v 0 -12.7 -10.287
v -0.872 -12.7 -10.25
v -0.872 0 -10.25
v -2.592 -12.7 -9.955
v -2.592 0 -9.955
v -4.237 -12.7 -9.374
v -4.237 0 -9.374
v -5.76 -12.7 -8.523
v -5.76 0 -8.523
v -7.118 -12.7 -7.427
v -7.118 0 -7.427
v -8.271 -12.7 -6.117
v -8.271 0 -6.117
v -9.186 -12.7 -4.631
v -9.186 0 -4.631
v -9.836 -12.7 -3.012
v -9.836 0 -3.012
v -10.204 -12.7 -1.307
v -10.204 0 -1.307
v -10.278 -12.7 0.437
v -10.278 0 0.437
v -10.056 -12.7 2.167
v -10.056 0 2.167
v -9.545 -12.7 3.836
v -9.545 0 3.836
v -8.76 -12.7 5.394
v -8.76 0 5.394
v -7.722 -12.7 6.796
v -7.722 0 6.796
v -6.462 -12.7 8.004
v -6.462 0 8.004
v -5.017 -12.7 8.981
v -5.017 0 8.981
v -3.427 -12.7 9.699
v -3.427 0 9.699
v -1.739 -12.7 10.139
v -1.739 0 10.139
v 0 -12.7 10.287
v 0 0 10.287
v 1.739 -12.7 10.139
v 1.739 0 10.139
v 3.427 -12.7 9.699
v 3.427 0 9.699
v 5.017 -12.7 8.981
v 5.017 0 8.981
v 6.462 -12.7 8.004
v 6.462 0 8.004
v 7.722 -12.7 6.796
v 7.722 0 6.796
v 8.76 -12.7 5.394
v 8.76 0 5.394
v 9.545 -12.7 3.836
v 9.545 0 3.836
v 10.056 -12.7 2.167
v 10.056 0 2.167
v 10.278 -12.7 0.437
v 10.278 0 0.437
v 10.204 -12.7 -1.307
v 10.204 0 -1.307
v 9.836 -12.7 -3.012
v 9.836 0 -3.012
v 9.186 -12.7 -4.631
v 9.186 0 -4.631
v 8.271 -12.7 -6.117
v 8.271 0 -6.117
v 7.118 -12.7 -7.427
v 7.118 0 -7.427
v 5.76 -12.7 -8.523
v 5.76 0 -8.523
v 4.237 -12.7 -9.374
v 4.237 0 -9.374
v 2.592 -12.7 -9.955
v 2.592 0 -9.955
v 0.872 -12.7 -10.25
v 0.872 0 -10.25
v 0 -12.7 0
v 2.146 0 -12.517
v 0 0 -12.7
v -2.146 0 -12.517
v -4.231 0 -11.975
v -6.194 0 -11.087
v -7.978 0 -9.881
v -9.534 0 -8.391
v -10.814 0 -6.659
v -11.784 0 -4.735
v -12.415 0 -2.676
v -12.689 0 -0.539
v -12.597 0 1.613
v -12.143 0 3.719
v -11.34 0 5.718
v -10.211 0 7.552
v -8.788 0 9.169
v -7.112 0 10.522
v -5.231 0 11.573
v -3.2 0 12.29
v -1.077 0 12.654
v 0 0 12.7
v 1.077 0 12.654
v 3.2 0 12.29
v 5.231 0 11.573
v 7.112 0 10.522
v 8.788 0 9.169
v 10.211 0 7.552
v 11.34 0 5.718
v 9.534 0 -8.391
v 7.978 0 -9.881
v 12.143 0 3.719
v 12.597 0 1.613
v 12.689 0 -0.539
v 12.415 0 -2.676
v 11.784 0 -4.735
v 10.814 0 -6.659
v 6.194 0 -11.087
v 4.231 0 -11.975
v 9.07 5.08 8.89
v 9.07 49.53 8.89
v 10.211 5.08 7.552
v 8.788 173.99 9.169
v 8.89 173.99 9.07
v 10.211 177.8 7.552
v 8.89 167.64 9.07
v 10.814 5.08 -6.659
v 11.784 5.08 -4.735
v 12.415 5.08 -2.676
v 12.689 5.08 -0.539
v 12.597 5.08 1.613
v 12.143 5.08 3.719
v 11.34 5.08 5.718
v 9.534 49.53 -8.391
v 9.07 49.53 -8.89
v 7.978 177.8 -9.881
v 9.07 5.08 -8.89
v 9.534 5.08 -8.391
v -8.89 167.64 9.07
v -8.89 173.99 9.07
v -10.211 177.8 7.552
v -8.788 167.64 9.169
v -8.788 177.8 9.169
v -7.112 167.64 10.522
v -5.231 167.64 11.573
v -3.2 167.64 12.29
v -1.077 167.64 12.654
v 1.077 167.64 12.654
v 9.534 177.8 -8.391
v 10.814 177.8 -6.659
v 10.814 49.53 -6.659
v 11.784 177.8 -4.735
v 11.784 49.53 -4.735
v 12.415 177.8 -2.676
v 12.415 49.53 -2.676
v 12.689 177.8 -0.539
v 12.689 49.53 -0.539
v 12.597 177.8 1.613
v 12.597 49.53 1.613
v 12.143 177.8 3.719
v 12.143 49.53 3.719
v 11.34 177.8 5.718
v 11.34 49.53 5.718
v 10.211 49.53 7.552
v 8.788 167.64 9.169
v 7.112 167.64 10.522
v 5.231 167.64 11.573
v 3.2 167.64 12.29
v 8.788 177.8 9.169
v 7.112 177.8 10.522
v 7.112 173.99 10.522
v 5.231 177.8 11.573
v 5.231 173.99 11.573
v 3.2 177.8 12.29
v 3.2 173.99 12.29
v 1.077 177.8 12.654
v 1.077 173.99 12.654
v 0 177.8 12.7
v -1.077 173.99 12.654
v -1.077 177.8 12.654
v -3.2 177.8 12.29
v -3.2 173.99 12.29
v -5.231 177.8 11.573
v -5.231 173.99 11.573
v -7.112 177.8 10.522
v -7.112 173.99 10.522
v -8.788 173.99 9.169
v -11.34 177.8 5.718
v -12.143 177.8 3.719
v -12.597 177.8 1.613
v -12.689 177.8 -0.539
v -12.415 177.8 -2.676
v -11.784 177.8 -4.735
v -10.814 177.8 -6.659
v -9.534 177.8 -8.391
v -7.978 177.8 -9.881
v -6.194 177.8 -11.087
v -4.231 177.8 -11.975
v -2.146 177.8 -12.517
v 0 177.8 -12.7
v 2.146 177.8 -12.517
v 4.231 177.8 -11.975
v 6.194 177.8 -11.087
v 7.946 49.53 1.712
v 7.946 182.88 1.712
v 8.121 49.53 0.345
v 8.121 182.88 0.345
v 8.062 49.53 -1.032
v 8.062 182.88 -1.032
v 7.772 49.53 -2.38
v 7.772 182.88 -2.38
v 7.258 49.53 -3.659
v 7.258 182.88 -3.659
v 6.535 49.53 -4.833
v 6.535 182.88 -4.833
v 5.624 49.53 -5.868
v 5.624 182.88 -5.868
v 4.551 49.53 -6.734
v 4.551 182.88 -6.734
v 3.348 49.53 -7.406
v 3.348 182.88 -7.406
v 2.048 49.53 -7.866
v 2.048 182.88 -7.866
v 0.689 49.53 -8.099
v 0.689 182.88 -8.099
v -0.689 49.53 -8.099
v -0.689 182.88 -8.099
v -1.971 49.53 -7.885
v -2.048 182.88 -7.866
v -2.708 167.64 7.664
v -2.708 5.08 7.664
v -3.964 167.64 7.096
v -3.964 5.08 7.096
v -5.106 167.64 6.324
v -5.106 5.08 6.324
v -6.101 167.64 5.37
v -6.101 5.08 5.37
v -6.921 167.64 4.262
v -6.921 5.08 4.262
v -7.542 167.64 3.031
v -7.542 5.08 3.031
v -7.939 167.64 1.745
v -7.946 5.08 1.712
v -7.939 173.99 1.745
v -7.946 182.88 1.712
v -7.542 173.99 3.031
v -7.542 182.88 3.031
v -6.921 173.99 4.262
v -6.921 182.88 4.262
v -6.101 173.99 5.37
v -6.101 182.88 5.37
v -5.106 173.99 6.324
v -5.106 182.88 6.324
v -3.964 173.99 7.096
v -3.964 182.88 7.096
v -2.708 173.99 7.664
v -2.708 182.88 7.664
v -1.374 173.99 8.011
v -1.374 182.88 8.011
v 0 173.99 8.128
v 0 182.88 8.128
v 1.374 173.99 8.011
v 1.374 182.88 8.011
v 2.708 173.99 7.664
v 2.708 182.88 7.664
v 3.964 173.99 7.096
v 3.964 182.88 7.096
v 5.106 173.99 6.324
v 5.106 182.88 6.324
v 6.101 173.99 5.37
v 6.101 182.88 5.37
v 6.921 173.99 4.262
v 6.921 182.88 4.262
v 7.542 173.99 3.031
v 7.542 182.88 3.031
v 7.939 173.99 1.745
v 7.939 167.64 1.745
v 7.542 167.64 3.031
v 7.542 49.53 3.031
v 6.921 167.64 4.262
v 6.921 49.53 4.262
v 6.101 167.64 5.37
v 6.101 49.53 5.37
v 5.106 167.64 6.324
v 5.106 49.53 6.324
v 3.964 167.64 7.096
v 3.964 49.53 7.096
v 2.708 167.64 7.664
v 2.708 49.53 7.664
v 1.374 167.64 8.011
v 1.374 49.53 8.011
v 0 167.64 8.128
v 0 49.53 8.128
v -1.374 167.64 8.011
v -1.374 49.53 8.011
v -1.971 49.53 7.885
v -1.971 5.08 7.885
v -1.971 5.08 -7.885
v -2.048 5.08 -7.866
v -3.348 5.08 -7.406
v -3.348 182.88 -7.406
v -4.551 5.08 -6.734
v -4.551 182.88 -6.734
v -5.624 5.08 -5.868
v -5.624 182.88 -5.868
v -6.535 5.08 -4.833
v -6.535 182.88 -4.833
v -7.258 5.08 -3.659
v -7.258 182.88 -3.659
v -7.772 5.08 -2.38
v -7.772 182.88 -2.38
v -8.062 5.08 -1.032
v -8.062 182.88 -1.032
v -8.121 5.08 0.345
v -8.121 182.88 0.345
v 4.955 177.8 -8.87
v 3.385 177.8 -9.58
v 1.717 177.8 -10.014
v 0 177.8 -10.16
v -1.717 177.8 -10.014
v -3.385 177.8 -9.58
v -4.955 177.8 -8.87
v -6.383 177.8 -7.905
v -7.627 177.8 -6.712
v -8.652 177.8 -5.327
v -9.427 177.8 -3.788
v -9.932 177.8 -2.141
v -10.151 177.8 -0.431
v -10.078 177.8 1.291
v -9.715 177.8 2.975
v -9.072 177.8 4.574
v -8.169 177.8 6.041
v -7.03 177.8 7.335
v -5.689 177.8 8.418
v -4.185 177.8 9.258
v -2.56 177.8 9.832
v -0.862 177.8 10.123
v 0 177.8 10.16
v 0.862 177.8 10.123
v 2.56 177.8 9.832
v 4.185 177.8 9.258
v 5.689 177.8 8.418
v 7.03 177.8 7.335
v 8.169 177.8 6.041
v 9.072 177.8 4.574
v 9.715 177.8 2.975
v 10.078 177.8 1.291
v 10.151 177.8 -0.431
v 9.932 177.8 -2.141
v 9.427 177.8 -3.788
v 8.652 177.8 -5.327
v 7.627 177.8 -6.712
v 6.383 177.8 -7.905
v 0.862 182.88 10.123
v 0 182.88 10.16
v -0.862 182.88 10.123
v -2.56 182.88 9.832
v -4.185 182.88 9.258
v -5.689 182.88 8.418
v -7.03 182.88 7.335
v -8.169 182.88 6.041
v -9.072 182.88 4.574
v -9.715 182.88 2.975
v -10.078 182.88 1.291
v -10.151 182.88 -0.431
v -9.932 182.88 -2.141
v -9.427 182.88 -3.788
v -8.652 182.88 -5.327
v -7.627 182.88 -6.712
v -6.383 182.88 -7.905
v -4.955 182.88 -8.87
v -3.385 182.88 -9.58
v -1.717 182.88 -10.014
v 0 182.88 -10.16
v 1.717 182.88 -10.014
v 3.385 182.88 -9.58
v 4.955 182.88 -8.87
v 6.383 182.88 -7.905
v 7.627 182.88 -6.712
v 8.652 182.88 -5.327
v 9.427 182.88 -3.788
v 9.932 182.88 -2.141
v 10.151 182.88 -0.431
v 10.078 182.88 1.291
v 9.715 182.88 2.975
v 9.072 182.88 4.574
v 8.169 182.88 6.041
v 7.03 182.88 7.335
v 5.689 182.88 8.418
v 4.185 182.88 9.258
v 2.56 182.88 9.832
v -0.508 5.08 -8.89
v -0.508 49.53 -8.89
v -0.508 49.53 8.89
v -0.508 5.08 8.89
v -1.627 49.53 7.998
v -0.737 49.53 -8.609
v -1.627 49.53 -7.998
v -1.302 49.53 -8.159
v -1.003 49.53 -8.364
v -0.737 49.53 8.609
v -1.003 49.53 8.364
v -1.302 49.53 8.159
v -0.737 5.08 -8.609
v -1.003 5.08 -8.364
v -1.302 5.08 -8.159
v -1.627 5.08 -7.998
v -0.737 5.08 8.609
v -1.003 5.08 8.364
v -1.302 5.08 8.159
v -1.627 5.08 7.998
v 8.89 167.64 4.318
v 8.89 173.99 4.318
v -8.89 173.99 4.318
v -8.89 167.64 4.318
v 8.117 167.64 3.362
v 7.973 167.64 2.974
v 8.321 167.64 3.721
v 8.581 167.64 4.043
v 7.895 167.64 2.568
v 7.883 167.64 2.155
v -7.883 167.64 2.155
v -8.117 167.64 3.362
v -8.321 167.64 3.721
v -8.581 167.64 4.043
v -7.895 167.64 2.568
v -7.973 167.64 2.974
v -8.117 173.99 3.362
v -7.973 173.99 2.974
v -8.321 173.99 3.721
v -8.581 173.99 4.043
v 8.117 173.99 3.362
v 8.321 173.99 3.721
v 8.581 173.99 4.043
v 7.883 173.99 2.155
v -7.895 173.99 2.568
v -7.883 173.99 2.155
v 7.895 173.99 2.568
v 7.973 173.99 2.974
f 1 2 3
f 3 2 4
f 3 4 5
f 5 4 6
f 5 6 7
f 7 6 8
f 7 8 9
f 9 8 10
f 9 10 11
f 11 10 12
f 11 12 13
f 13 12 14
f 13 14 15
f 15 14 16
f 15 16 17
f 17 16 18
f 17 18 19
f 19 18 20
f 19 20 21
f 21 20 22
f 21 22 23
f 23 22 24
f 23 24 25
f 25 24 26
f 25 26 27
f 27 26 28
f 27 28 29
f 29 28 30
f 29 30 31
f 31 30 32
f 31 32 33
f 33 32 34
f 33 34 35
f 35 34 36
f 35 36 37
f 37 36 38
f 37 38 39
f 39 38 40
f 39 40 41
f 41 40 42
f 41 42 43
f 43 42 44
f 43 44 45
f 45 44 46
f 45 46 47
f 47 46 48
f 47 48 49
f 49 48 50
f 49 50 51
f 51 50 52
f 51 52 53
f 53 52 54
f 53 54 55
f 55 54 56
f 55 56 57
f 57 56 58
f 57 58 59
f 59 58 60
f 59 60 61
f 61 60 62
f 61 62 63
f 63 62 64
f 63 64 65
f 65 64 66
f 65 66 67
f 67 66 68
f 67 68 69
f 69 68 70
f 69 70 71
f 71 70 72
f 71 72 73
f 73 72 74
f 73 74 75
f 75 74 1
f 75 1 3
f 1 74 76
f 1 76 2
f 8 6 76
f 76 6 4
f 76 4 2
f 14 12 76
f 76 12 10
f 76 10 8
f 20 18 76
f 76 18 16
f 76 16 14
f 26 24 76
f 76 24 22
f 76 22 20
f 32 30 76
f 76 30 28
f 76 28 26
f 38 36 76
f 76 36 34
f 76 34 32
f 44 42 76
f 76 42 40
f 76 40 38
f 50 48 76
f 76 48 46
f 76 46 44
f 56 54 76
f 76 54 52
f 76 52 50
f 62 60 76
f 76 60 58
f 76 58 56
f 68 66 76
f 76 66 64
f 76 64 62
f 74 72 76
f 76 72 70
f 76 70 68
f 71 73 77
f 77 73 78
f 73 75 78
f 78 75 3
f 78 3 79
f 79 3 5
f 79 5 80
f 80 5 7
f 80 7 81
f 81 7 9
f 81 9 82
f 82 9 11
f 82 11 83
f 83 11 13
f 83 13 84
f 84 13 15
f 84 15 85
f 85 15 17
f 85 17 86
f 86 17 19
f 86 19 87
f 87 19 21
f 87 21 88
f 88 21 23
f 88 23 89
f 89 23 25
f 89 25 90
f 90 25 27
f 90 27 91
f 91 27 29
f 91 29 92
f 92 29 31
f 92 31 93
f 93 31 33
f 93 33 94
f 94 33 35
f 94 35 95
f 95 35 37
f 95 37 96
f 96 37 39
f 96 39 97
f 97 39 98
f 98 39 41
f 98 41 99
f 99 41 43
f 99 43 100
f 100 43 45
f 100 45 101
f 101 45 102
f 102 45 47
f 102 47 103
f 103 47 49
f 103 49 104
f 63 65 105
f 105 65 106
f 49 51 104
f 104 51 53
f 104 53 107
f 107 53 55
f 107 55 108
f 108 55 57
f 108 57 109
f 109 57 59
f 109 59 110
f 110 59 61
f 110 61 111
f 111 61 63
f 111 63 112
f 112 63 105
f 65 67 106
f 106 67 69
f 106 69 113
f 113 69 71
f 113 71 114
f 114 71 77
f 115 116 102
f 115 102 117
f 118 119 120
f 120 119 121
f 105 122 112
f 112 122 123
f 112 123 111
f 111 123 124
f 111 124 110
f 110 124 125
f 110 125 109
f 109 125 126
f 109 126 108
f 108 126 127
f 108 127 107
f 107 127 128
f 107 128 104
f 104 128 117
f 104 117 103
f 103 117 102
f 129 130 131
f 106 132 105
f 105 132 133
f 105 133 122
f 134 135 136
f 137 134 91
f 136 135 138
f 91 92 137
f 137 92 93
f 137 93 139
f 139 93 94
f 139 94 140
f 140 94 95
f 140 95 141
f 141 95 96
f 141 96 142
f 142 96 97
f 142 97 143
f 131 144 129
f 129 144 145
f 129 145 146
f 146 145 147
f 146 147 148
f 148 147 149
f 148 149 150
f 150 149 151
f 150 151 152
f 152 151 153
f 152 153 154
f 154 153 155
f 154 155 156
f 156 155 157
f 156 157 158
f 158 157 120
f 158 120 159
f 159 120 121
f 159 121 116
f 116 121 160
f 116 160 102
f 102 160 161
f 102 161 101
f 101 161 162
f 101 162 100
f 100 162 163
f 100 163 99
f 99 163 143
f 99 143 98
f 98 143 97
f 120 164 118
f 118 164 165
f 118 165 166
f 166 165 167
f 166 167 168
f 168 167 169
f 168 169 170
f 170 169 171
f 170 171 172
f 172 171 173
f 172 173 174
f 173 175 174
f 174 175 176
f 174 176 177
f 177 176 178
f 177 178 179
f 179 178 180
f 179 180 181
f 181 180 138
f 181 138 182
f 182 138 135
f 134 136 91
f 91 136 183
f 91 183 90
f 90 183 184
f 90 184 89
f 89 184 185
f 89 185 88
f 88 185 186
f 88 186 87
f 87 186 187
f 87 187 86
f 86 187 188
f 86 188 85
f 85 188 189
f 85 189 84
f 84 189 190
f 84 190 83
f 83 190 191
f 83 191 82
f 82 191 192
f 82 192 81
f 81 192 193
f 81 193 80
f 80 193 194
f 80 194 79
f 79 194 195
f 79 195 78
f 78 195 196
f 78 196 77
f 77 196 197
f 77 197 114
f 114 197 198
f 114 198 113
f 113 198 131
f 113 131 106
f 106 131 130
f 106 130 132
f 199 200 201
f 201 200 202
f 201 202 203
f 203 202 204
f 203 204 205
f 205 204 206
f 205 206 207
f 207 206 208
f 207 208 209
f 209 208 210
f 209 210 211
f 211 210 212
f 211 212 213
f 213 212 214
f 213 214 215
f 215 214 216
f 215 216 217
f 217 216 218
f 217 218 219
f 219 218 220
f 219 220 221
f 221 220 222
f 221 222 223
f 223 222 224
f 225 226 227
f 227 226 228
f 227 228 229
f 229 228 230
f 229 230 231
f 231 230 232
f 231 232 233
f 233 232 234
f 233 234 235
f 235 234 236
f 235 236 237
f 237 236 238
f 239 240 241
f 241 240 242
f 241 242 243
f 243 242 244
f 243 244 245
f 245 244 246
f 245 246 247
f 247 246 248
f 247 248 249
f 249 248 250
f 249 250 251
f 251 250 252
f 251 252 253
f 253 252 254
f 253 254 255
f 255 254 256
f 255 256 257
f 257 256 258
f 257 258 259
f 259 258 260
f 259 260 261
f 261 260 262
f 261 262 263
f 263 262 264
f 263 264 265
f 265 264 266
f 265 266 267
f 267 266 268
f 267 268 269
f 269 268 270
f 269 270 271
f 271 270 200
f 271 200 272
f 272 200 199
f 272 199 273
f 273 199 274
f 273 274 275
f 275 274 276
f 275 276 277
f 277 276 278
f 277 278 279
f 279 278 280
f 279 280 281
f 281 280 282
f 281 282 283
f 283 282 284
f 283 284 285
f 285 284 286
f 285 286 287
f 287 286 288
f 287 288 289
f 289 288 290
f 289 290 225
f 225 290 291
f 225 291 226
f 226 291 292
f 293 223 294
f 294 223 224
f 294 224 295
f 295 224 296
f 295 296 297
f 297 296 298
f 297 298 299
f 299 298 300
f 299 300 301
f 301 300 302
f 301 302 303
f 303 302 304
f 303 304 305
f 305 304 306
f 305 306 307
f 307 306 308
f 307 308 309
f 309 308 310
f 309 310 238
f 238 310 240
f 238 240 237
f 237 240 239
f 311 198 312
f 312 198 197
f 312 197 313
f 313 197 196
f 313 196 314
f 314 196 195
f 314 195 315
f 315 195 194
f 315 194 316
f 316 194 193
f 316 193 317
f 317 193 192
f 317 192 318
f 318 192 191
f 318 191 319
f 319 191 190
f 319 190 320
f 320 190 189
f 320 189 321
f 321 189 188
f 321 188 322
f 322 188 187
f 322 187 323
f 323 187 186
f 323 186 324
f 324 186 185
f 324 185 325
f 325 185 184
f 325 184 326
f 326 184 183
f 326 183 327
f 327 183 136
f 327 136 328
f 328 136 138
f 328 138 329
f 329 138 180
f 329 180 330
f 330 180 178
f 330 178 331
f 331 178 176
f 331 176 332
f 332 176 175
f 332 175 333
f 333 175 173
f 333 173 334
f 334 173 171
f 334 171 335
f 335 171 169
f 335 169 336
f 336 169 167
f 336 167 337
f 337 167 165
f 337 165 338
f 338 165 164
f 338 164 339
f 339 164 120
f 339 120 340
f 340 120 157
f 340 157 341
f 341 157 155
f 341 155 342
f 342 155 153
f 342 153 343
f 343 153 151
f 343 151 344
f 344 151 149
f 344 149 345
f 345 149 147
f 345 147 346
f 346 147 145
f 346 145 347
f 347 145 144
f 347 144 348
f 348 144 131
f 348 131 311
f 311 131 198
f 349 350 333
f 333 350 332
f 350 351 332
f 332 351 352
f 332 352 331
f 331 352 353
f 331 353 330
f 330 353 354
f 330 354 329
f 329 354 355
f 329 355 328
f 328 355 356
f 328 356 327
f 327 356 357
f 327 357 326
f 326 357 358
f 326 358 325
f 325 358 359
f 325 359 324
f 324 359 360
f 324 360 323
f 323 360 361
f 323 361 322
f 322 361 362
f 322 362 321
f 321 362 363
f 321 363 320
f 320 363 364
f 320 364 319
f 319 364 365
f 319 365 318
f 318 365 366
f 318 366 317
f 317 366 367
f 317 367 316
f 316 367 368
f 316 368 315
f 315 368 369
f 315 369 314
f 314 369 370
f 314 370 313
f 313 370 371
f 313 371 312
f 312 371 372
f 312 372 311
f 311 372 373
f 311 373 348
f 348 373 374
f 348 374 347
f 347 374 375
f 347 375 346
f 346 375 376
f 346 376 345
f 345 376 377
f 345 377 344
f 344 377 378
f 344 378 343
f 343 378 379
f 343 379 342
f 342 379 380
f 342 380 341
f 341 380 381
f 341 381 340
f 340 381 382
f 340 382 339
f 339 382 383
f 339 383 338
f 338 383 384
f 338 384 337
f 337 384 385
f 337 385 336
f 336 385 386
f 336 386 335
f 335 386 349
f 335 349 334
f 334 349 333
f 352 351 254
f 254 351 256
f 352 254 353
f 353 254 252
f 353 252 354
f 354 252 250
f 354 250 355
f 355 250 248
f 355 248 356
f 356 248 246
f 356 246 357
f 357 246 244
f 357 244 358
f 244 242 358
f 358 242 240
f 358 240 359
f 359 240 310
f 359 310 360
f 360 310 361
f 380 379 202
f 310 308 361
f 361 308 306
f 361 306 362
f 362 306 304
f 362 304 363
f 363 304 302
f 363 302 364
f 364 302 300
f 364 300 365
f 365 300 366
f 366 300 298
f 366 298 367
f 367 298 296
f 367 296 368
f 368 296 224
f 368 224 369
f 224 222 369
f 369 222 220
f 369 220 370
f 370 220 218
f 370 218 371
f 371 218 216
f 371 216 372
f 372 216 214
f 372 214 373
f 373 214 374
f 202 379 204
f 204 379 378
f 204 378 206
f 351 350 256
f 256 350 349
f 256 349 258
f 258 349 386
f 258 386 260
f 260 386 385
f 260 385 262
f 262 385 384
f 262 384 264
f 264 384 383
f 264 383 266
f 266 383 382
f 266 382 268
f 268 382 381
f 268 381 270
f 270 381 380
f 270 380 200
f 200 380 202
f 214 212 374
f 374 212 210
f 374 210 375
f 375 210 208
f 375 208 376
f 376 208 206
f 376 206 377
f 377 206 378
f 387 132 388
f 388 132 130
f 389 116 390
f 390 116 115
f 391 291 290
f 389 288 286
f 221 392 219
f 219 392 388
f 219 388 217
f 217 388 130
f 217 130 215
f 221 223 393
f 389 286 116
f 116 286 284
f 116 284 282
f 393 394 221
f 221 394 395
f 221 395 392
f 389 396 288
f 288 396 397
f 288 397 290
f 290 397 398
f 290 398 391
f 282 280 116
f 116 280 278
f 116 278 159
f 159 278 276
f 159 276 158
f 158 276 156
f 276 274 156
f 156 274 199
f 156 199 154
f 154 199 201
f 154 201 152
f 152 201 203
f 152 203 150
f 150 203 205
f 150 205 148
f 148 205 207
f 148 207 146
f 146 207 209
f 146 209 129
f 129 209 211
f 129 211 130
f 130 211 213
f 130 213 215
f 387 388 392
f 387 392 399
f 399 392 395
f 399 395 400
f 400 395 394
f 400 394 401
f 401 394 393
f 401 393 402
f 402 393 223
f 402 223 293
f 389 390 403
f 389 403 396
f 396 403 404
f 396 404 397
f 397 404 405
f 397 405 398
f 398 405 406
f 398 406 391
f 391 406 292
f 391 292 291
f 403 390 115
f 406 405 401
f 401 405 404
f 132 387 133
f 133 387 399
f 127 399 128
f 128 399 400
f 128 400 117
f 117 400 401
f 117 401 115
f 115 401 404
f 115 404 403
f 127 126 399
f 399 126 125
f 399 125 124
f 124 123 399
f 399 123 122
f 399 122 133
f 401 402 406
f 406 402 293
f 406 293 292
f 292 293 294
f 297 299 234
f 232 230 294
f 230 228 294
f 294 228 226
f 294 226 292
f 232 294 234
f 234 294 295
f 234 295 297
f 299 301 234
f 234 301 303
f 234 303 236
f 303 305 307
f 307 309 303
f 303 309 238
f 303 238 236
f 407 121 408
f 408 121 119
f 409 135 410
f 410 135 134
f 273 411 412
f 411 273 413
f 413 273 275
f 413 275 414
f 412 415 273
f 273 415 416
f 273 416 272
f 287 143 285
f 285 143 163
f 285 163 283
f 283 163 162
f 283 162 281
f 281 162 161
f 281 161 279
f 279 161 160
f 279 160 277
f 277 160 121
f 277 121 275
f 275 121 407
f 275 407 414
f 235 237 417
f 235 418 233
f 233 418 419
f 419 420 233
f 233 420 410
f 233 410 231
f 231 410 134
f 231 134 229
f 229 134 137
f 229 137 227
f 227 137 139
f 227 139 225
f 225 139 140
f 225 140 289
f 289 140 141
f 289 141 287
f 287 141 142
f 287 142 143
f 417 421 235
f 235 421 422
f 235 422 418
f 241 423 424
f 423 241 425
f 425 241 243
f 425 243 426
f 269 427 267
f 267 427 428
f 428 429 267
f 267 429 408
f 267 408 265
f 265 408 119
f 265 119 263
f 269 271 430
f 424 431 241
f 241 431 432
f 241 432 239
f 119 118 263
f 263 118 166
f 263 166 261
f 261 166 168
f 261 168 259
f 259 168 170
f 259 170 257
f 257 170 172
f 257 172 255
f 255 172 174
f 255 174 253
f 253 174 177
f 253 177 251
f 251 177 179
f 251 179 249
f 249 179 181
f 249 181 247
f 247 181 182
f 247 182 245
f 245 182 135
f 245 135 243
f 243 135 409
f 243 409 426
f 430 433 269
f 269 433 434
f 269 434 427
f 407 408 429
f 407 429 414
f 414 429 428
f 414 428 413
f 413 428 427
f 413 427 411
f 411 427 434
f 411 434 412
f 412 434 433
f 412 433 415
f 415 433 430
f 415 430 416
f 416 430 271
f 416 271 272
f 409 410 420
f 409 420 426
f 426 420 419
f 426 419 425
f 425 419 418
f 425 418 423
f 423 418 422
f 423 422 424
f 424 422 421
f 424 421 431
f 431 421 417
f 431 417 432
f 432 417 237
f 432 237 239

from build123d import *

# Parameters (mm, degrees)
SKETCH1_R           = 12.7
BOSS_EXTRUDE1_DEPTH = 177.8
SKETCH4_R           = 10.16
BOSS_EXTRUDE2_DEPTH = 5.08
SKETCH5_R           = 8.128
CUT_EXTRUDE1_DEPTH  = 184.759828036
SKETCH6_R           = 10.287
SKETCH6_R_2         = 8.128
BOSS_EXTRUDE3_DEPTH = 12.7
SKETCH9_W           = 17.78
SKETCH9_H           = 44.45
CUT_EXTRUDE2_DEPTH  = 14.478
FILLET2_R           = 2.54
BOSS_EXTRUDE4_START = -17.78
SKETCH10_R          = 8.128
BOSS_EXTRUDE4_DEPTH = 17.78
SKETCH11_W          = 17.78
SKETCH11_H          = 6.35
CUT_EXTRUDE3_DEPTH  = 9.652
FILLET3_R           = 2.54


with BuildPart() as part:
    # Sketch1 → Boss-Extrude1 (new body)
    with BuildSketch(Plane(origin=(0, 0, 0), x_dir=(1, 0, 0), z_dir=(0, 1, 0))):
        with Locations(Location((0, 0, 0), (0, 0, 270))):
            Circle(SKETCH1_R)
    extrude(amount=BOSS_EXTRUDE1_DEPTH)

    # Sketch4 → Boss-Extrude2 (add)
    with BuildSketch(Plane(origin=(0, 177.8, 0), x_dir=(1, 0, 0), z_dir=(0, 1, 0))):
        with Locations(Location((0, 0, 0), (0, 0, 270))):
            Circle(SKETCH4_R)
    extrude(amount=BOSS_EXTRUDE2_DEPTH)

    # Sketch5 → Cut-Extrude1 (cut, through all)
    with BuildSketch(Plane(origin=(0, 182.88, 0), x_dir=(1, 0, 0), z_dir=(0, 1, 0))):
        with Locations(Location((0, 0, 0), (0, 0, 270))):
            Circle(SKETCH5_R)
    extrude(amount=-CUT_EXTRUDE1_DEPTH, mode=Mode.SUBTRACT)

    # Sketch6 → Boss-Extrude3 (add)
    with BuildSketch(Plane.XZ):
        with Locations(Location((0, 0, 0), (0, 0, 90))):
            Circle(SKETCH6_R)
        with Locations(Location((0, 0, 0), (0, 0, 90))):
            Circle(SKETCH6_R_2, mode=Mode.SUBTRACT)
    extrude(amount=BOSS_EXTRUDE3_DEPTH)


with BuildPart() as body_2:
    # Split1: the piece on the far side of the plane
    add(part.part)
    split(bisect_by=Plane(origin=(0, 2.54, 0), x_dir=(0, 0, -1), z_dir=(0, -1, 0)), keep=Keep.BOTTOM)

    # Sketch9 → Cut-Extrude2 (cut)
    with BuildSketch(Plane(origin=(13.97, 0, 0), x_dir=(0, 0, -1), z_dir=(1, 0, 0))):
        with Locations((0, 27.305)):
            Rectangle(SKETCH9_W, SKETCH9_H)
    extrude(amount=-CUT_EXTRUDE2_DEPTH, mode=Mode.SUBTRACT)

    # Fillet2
    # the kernel refuses this fillet: 2.54 mm, written as the material it takes off along each edge
    with BuildSketch(Plane(origin=(-0.508, 5.08, -8.112109467), x_dir=(-0.988207128280474, 0, 0.15312306036537704), z_dir=(0, 1, 0))) as fillet2_piece_1:
        with BuildLine():
            CenterArc((1.711577927, -2.529447161), FILLET2_R, 95.224634403, 40.891343564)
            Line((-0.119112979, -0.76871697), (-0.155726797, -0.733502366))
            ThreePointArc((-0.155726797, -0.733502366), (-0.109757412, -0.376579834), (-0.050200922, 0.007778651))
            Line((-0.050200922, 0.007778651), (0.004625886, 0.050588943))
            ThreePointArc((0.004625886, 0.050588943), (0.740141806, 0.017030915), (1.475657727, 0.050588943))
            Line((1.475657727, 0.050588943), (1.480283613, 0))
        make_face()
    extrude(amount=44.45, mode=Mode.SUBTRACT)
    with BuildSketch(Plane(origin=(-0.508, 5.08, 8.112109467), x_dir=(-0.9882071282804739, 0, -0.15312306036537726), z_dir=(0, 1, 0))) as fillet2_piece_2:
        with BuildLine():
            CenterArc((1.711577927, 2.529447161), FILLET2_R, 223.884022033, 40.891343564)
            Line((-0.119112979, 0.76871697), (-0.155726797, 0.733502366))
            ThreePointArc((-0.155726797, 0.733502366), (-0.109757412, 0.376579834), (-0.050200922, -0.007778651))
            Line((-0.050200922, -0.007778651), (0.004625886, -0.050588943))
            ThreePointArc((0.004625886, -0.050588943), (0.740141806, -0.017030915), (1.475657727, -0.050588943))
            Line((1.475657727, -0.050588943), (1.480283613, 0))
        make_face()
    extrude(amount=44.45, mode=Mode.SUBTRACT)


with BuildPart() as part_1:
    add(part.part)

    # Split1
    split(bisect_by=Plane(origin=(0, 2.54, 0), x_dir=(0, 0, -1), z_dir=(0, -1, 0)), keep=Keep.TOP)

    add(body_2.part)  # Boss-Extrude4 merges body 2
    # Sketch10 → Boss-Extrude4 (add)
    with BuildSketch(Plane.XZ.offset(12.7).offset(BOSS_EXTRUDE4_START)):
        with Locations(Location((0, 0, 0), (0, 0, 90))):
            Circle(SKETCH10_R)
    extrude(amount=BOSS_EXTRUDE4_DEPTH)

    # Sketch11 → Cut-Extrude3 (cut)
    with BuildSketch(Plane.XY.offset(13.97)):
        with Locations((0, 170.815)):
            Rectangle(SKETCH11_W, SKETCH11_H)
    extrude(amount=-CUT_EXTRUDE3_DEPTH, mode=Mode.SUBTRACT)

    # Fillet3
    # the kernel refuses this fillet: 2.54 mm, written as the material it takes off along each edge
    with BuildSketch(Plane(origin=(-6.88616439, 167.64, 4.318), x_dir=(-1, 0, 0), z_dir=(0, 1, 0))) as fillet3_piece_1:
        with BuildLine():
            CenterArc((3.533151107, -2.028002493), FILLET3_R, 127.019924819, 65.375681648)
            Line((1.052361703, -2.573239995), (1.002745915, -2.584144745))
            ThreePointArc((1.002745915, -2.584144745), (0.589996771, -1.260521604), (-0.043038527, -0.0269875))
            Line((-0.043038527, -0.0269875), (0, 0.0508))
            ThreePointArc((0, 0.0508), (1.001917805, 0.0508), (1.973249301, 0.04056005))
            Line((1.973249301, 0.04056005), (2.00383561, 0))
        make_face()
    extrude(amount=6.35, mode=Mode.SUBTRACT)
    with BuildSketch(Plane(origin=(6.88616439, 167.64, 4.318), x_dir=(0.3785319660304678, 0, -0.9255882187523287), z_dir=(0, 1, 0))) as fillet3_piece_2:
        with BuildLine():
            CenterArc((3.21450585, -2.502579269), FILLET3_R, 99.847172395, 65.375681648)
            Line((0.758515833, -1.854726633), (0.709396033, -1.841769581))
            ThreePointArc((0.709396033, -1.841769581), (0.332238035, -0.946592741), (-0.047019882, -0.019229424))
            Line((-0.047019882, -0.019229424), (0.008687854, 0.050051585))
            ThreePointArc((0.008687854, 0.050051585), (1.390056584, -0.068946339), (2.771425314, 0.050051585))
            Line((2.771425314, 0.050051585), (2.780113168, 0))
        make_face()
    extrude(amount=6.35, mode=Mode.SUBTRACT)


solid = part_1.part
